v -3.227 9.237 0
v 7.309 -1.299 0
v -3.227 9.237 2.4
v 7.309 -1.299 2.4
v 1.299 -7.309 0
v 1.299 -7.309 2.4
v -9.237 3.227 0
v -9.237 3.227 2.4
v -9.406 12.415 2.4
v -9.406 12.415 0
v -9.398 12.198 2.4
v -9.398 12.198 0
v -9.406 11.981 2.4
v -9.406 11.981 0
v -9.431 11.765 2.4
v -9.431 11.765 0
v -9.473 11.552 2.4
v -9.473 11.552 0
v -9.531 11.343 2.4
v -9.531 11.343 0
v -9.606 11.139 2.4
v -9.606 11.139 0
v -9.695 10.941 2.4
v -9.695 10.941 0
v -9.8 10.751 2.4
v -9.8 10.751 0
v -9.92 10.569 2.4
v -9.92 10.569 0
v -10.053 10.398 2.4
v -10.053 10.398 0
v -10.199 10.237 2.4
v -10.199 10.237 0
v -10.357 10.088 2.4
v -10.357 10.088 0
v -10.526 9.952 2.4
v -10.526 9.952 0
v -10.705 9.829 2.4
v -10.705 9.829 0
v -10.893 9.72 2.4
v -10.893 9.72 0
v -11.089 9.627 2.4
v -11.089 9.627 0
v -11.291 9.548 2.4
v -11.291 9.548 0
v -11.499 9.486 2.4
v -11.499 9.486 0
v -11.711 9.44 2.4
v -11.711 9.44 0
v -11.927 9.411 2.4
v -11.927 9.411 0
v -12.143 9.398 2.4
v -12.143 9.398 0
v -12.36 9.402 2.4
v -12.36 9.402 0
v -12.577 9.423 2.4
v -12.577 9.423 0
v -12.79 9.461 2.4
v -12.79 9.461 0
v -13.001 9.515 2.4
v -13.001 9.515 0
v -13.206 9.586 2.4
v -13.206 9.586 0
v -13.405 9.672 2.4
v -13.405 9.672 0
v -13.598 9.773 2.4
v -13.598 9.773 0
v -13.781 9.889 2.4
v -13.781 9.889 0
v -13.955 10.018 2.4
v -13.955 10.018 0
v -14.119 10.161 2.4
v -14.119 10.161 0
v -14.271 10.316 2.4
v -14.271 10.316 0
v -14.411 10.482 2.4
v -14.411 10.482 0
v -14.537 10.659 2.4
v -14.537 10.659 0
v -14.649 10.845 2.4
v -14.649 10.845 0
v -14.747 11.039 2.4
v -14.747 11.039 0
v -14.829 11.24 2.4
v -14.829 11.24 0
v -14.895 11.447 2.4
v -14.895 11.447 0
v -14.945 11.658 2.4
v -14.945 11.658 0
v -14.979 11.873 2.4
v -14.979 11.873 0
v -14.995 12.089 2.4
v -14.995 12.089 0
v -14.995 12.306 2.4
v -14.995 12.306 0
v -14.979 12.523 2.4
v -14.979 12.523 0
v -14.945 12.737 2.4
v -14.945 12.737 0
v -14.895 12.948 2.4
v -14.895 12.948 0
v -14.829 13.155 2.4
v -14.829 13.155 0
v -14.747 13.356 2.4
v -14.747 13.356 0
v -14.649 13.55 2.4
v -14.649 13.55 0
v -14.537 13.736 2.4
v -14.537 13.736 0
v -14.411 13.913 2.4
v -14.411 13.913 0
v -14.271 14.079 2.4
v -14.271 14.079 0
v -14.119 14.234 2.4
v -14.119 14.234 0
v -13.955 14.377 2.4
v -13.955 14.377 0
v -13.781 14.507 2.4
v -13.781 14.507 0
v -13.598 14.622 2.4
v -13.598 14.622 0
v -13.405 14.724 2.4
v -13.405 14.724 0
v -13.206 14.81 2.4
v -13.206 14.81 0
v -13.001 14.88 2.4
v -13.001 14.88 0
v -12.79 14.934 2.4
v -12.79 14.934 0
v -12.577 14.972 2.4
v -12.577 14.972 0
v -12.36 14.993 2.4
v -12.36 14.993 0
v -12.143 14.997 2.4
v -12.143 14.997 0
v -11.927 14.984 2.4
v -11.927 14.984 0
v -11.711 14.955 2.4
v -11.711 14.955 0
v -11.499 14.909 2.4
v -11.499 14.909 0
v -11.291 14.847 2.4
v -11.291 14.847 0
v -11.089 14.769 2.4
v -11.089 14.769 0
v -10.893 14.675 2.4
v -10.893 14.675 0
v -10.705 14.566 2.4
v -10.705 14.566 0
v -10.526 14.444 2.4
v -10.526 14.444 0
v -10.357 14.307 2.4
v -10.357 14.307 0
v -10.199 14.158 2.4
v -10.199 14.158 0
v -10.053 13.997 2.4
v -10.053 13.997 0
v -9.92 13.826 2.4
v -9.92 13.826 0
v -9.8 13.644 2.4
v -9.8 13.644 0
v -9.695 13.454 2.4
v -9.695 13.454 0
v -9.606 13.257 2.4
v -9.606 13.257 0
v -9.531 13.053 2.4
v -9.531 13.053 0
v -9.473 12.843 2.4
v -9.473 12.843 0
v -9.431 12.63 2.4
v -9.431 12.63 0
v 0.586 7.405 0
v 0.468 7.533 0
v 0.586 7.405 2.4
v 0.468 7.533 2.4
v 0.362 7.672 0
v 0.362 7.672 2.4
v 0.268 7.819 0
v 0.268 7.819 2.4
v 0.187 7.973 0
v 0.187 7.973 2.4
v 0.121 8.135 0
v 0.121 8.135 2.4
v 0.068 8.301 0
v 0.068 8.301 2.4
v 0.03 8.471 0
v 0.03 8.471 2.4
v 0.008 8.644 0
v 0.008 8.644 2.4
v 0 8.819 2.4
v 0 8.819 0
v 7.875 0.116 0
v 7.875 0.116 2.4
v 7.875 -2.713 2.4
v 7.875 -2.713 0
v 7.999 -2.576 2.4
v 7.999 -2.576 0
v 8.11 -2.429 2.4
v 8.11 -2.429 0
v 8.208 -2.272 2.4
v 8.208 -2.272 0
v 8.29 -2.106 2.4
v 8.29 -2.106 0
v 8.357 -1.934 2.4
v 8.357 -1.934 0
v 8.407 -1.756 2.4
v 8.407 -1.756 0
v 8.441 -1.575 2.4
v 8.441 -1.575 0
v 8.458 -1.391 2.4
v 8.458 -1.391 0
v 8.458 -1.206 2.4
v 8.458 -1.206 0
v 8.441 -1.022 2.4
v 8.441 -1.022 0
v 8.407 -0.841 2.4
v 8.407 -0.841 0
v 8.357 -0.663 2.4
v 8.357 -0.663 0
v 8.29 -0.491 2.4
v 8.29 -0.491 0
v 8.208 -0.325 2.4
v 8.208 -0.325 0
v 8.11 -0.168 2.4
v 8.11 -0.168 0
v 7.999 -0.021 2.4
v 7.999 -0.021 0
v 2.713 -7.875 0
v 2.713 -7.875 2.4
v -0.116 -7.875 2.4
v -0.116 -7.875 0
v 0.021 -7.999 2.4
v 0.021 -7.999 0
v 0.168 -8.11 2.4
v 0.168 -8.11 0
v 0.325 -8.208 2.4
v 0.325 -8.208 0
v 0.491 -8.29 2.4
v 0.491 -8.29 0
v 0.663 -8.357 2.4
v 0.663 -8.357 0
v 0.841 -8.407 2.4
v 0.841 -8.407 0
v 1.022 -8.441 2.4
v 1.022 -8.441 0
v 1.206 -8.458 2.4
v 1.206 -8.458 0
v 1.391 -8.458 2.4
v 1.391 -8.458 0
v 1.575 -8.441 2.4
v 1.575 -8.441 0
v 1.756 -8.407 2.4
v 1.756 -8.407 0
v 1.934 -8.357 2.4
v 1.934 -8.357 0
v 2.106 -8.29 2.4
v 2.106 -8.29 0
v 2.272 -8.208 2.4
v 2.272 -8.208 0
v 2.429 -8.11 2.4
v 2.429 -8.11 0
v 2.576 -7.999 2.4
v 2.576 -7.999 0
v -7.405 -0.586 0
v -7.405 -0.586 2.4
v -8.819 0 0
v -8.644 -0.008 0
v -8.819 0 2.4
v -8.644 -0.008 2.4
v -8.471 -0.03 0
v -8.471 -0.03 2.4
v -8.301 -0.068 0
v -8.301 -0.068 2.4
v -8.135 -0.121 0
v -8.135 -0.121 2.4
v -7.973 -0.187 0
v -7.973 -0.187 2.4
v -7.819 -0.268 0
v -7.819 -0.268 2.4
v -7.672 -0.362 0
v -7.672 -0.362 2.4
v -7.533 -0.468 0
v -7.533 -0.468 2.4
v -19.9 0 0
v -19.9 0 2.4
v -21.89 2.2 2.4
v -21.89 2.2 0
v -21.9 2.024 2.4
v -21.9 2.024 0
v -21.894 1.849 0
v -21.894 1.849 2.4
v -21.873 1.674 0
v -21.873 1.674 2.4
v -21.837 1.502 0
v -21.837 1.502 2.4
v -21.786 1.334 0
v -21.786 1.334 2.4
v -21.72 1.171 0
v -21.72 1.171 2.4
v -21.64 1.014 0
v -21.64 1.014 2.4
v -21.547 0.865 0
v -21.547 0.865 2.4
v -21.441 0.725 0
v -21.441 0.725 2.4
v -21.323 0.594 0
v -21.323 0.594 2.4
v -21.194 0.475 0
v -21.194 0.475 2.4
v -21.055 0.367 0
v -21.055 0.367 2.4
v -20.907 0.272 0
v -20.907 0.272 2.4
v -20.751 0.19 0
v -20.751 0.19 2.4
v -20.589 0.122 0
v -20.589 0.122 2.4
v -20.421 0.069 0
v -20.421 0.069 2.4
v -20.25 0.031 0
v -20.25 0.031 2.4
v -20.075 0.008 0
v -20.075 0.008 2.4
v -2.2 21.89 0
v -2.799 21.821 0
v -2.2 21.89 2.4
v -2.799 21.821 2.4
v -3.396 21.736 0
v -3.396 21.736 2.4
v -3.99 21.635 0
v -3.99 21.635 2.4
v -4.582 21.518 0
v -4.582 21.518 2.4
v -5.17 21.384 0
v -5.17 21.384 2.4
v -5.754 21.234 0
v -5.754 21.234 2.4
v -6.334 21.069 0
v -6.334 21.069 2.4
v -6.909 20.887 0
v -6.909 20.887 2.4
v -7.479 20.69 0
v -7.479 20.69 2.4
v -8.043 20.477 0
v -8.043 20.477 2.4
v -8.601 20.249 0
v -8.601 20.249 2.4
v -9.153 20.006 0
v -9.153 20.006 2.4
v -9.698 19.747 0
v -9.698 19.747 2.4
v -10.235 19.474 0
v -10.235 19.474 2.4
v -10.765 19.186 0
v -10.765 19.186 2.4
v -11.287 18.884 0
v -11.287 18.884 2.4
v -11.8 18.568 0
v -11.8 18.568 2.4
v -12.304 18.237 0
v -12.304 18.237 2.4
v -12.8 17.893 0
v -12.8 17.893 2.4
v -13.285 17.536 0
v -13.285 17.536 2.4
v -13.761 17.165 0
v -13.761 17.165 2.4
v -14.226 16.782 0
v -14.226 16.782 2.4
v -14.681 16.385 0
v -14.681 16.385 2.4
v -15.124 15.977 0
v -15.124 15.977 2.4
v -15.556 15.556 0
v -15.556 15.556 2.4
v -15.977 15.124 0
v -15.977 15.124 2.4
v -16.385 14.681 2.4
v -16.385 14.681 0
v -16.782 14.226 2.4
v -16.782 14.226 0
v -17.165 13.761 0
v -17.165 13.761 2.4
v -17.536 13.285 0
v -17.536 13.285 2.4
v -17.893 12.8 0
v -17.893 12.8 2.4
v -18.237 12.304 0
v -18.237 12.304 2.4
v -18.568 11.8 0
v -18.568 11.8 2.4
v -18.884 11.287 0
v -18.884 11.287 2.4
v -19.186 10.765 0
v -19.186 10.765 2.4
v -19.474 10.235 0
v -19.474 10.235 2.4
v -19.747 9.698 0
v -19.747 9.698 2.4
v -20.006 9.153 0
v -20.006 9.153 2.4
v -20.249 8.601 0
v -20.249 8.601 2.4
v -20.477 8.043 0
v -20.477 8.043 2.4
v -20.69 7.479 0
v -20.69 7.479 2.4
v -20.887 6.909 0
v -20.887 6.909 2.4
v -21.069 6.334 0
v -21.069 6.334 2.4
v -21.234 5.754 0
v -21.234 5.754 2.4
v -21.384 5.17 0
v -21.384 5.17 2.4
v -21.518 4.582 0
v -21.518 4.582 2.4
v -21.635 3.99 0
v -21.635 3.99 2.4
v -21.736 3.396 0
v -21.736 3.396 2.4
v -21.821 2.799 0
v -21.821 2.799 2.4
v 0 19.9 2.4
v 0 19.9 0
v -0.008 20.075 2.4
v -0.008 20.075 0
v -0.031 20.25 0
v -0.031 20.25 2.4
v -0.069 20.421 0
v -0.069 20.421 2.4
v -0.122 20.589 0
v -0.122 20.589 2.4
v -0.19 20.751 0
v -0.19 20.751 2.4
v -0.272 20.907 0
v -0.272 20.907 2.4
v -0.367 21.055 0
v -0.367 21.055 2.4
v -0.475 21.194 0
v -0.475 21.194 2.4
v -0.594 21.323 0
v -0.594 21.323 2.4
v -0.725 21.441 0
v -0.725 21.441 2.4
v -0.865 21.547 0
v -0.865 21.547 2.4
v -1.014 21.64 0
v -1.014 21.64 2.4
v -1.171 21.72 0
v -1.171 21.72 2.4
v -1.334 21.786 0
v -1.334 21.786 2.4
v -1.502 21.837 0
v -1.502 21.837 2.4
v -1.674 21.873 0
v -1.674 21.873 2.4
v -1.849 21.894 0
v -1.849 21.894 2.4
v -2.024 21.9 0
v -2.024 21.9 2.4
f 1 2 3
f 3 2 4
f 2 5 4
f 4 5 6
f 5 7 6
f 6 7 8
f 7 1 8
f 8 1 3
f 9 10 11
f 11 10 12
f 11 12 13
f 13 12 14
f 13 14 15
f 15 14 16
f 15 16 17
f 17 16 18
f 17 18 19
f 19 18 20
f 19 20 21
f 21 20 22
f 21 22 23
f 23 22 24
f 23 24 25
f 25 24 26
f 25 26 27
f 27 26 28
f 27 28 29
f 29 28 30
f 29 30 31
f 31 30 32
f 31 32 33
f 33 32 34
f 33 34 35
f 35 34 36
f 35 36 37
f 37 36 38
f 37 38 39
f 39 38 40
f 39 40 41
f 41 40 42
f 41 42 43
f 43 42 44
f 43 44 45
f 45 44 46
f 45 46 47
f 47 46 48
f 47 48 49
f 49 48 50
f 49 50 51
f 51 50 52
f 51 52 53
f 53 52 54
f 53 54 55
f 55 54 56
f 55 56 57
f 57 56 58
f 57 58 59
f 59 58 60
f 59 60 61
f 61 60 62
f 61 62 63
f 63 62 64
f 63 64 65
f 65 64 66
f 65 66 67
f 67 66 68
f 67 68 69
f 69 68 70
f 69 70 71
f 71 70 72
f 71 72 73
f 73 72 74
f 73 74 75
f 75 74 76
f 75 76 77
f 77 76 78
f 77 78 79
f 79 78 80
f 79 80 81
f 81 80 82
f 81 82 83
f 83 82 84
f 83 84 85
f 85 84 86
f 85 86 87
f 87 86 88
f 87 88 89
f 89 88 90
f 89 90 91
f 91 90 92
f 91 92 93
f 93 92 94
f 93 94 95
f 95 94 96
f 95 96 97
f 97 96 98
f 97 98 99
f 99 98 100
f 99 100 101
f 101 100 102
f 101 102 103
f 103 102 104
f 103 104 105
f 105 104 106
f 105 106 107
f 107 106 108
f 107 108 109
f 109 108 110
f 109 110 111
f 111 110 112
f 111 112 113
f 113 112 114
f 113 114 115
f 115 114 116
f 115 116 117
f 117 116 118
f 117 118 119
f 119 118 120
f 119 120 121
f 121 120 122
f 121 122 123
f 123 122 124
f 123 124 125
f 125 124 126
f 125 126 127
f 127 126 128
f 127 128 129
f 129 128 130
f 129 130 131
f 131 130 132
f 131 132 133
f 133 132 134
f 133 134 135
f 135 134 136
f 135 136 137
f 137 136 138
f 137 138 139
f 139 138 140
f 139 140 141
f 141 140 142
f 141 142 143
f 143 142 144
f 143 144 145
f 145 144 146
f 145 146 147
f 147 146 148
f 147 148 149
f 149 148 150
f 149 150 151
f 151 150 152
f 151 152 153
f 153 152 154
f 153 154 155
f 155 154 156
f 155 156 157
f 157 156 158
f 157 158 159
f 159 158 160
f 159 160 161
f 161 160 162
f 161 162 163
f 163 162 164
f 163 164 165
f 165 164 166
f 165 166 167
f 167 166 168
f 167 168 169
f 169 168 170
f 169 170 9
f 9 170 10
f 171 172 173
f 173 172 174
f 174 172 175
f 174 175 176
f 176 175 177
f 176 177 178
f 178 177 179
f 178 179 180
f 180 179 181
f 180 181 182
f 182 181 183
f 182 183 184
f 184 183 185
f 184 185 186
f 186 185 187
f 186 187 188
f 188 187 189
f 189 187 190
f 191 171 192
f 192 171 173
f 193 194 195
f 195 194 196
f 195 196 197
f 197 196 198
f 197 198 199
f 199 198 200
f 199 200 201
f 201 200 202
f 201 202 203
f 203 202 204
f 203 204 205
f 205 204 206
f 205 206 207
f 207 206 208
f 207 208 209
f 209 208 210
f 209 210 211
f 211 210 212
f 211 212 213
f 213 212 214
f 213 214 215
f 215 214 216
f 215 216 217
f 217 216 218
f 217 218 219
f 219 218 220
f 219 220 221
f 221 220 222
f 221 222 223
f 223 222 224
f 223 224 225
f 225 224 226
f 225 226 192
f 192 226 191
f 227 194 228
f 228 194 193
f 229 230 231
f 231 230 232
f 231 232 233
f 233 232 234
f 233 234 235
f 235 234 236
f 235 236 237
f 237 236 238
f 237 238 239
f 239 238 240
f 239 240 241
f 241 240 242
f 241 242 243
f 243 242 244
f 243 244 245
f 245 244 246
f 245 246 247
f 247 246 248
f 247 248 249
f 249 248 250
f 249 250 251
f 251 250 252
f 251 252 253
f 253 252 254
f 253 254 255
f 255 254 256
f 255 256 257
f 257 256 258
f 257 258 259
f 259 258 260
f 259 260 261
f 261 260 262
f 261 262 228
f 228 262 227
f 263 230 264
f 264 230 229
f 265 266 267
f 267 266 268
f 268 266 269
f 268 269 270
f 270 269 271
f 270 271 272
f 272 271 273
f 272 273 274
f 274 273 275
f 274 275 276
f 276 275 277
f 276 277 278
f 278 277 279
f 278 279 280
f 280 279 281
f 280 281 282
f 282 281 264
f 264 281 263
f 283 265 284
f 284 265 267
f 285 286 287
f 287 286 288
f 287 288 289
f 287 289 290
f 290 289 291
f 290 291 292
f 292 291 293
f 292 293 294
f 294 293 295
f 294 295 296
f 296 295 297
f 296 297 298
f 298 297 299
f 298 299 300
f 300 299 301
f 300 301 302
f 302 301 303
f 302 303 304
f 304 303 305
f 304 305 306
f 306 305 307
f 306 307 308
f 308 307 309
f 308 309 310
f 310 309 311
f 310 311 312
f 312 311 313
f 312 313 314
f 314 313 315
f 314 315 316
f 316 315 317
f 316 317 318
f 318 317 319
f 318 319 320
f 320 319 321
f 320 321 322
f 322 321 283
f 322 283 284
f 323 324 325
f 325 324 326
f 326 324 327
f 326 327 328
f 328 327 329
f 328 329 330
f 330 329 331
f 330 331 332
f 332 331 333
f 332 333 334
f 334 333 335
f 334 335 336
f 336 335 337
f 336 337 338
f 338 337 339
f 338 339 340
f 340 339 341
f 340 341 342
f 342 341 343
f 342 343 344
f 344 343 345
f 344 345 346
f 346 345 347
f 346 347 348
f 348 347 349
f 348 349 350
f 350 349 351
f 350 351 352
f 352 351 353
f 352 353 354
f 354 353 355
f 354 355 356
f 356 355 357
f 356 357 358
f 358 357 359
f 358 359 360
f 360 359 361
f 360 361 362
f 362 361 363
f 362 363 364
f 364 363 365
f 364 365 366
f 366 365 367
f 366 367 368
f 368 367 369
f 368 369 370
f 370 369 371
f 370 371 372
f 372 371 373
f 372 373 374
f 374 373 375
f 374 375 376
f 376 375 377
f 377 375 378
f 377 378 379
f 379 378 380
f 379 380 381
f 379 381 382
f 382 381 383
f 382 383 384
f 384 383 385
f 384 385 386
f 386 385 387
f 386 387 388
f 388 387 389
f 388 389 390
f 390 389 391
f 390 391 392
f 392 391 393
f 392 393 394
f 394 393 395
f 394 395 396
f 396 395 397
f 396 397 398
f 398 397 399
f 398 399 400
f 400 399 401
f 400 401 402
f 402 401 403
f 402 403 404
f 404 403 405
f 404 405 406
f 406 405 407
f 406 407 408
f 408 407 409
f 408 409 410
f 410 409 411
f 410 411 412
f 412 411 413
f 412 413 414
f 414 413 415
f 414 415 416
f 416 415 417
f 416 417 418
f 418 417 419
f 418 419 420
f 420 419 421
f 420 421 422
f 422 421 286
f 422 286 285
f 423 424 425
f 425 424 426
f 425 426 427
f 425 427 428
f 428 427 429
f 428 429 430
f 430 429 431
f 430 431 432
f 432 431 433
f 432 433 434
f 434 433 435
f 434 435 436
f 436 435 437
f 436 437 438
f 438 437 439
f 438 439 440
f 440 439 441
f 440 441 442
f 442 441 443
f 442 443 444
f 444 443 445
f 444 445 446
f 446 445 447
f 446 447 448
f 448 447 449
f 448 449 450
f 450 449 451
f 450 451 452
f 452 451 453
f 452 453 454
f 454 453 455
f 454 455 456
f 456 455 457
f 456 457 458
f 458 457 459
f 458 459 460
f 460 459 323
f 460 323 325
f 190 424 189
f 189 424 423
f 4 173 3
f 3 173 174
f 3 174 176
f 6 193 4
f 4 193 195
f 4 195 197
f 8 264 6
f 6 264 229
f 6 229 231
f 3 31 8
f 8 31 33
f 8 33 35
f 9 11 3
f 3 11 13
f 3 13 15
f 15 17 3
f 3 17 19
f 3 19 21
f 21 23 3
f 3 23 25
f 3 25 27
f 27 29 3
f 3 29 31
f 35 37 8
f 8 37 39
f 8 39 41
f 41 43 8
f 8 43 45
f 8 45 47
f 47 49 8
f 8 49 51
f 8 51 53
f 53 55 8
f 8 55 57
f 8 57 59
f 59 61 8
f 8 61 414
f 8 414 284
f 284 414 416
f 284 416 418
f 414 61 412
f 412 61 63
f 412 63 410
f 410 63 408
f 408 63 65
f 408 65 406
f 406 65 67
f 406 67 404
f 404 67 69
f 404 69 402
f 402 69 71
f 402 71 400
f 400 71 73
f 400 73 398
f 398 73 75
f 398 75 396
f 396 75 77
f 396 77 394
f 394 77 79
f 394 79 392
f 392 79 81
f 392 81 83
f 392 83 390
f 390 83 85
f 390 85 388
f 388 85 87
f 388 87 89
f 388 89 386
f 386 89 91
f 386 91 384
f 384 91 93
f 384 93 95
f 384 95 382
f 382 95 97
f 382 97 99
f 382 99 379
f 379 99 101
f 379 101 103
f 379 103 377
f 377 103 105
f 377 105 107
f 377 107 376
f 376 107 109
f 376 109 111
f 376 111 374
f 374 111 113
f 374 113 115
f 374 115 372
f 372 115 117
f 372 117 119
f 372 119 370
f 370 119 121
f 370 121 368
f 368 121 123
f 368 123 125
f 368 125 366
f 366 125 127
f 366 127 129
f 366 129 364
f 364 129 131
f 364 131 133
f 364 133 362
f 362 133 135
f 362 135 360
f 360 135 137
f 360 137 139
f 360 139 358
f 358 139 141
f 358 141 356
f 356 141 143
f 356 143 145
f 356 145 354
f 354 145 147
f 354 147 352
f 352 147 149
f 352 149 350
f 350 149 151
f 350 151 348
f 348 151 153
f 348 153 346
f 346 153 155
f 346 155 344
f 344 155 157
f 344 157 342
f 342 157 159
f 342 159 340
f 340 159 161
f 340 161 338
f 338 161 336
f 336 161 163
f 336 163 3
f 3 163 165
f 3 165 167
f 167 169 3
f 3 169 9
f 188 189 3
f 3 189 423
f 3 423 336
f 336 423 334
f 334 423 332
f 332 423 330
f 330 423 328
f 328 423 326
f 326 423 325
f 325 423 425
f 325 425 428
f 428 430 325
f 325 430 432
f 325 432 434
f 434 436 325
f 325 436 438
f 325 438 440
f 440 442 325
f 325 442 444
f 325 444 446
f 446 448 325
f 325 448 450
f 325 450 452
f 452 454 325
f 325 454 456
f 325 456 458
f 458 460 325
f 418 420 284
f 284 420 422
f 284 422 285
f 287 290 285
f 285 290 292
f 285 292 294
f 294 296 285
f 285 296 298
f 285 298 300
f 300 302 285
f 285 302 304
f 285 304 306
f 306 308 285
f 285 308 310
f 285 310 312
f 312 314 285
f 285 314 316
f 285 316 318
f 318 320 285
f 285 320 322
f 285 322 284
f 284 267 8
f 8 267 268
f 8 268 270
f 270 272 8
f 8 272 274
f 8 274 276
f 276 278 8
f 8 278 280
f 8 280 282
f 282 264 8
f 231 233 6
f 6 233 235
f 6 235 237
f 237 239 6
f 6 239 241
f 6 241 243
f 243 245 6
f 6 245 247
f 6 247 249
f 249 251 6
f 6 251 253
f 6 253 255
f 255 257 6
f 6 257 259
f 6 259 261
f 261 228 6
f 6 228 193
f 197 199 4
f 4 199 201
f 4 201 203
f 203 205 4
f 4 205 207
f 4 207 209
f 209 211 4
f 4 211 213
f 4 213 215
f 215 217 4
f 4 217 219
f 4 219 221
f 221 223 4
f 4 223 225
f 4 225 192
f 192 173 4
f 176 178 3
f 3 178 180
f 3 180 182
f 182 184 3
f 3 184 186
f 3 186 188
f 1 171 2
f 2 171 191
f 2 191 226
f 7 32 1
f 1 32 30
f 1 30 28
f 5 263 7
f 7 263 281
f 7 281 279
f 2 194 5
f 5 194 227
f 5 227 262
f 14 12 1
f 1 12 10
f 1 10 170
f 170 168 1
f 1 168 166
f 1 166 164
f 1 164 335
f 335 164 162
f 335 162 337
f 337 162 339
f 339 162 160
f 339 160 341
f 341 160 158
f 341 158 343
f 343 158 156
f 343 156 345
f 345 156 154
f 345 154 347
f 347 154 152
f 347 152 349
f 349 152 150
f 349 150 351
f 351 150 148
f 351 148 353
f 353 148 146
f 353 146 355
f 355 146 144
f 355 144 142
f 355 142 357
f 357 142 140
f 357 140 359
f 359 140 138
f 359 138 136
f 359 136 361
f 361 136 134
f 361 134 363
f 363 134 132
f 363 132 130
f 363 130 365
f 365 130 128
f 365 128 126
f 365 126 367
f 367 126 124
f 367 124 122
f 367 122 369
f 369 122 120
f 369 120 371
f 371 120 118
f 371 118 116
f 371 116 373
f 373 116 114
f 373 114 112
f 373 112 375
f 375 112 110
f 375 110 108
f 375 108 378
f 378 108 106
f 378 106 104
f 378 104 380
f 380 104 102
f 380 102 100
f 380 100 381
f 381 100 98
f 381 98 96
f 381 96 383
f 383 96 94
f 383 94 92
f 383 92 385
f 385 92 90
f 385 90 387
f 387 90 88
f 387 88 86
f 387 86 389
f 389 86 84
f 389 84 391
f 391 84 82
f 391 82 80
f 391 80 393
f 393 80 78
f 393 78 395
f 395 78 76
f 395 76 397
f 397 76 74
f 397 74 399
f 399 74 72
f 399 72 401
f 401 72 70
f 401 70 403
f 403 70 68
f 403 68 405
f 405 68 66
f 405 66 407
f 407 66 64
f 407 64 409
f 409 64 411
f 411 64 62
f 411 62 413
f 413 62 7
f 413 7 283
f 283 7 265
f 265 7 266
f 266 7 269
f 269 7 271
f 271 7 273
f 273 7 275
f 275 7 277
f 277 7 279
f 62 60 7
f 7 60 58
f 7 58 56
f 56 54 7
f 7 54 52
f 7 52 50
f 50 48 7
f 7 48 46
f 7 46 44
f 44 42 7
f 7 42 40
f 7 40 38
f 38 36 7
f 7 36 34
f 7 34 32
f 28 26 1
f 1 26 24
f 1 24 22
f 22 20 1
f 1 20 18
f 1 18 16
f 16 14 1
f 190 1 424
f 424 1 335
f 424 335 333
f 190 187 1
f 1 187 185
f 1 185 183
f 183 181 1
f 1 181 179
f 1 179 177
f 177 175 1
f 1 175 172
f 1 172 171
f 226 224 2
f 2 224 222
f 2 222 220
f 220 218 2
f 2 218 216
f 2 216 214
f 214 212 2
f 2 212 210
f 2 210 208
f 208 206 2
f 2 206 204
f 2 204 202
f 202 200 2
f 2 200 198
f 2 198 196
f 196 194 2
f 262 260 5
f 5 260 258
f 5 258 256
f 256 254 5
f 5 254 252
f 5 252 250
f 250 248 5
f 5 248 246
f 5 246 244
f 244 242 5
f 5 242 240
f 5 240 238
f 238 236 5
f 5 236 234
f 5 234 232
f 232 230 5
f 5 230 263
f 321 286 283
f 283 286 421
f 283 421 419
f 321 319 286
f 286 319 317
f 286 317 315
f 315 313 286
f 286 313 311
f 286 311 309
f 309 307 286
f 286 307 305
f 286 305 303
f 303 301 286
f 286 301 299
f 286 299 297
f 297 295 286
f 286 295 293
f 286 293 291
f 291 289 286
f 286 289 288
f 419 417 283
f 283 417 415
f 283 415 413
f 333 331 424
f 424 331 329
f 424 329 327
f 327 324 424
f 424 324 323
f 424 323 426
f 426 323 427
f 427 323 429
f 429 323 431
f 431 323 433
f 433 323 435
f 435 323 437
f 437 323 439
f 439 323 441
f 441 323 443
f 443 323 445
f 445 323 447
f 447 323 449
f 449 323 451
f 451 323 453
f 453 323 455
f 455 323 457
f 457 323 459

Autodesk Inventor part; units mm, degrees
ref_plane "YZ Plane" through (0, 0, 0) normal (1, 0, 0) x (0, 1, 0)
ref_plane "XZ Plane" through (0, 0, 0) normal (0, 1, 0) x (-1, 0, 0)
ref_plane "XY Plane" through (0, 0, 0) normal (0, 0, 1) x (1, 0, 0)
sketch "Sketch1" plane through (0, 0, 0) normal (0, 0, 1) x (1, 0, 0)
  arc A0 (-2.2, 21.8897) -> (-21.8897, 2.2) centre (0, 0) ccw
  line L0 (-11.05, 0) -> (-19.8997, 0)
  line L1 (0, 11.05) -> (0, 19.8997)
  line L2 (0, 0) -> (22, 0) construction
  circle A1 centre (-12.1976, 12.1976) radius 2.8
  line L3 (0.5858, 7.4045) -> (6.9261, 1.0642)
  arc A2 (-21.8897, 2.2) -> (-19.8997, 0) centre (-19.8997, 2) ccw
  arc A3 (0, 19.8997) -> (-2.2, 21.8897) centre (-2, 19.8997) ccw
  line L4 (-8.5302, 2.5198) -> (-9.2373, 3.2269)
  line L5 (-3.2269, 9.2373) -> (-2.5198, 8.5302)
  line L6 (-0.1156, -5.8948) -> (-8.5302, 2.5198)
  line L7 (-2.5198, 8.5302) -> (5.8948, 0.1156)
  line L8 (-11.05, 0) -> (-8.8187, 0)
  line L9 (-7.4045, -0.5858) -> (-1.0642, -6.9261)
  line L10 (0, 11.05) -> (0, 8.8187)
  arc A4 (-7.4045, -0.5858) -> (-8.8187, 0) centre (-8.8187, -2) ccw
  arc A5 (0, 8.8187) -> (0.5858, 7.4045) centre (2, 8.8187) ccw
  arc A6 (0, 11.05) -> (-1.5191, 10.9451) centre (0, 0) ccw
  line L11 (5.8948, 0.1156) -> (7.309, -1.2986)
  line L12 (-0.1156, -5.8948) -> (1.2986, -7.309)
  line L13 (-0.1156, -5.8948) -> (1.8844, -5.8948) construction
  line L14 (1.2986, -7.309) -> (7.309, -1.2986)
  line L15 (-9.2373, 3.2269) -> (-3.2269, 9.2373)
  line L16 (-1.0642, -6.9261) -> (-0.1156, -7.8747)
  line L17 (2.7128, -7.8747) -> (7.8747, -2.7128)
  line L18 (7.8747, 0.1156) -> (6.9261, 1.0642)
  arc A7 (-10.2177, 4.2073) -> (-10.7101, 2.7198) centre (0, 0) ccw
  arc A8 (-10.9451, 1.5191) -> (-11.05, 0) centre (0, 0) ccw
  arc A9 (7.8747, -2.7128) -> (7.8747, 0.1156) centre (6.4605, -1.2986) ccw
  arc A10 (-0.1156, -7.8747) -> (2.7128, -7.8747) centre (1.2986, -6.4605) ccw
  point P0 (-22, 0)
  point P1 (0, 22)
  point P2 (0, 7.9903)
  point P3 (-4.2073, 10.2177)
  dimension "d1" = 44
  dimension "d3" = 5.6
  dimension "d4" = 17.25
  dimension "d6" = 15.6271
  dimension "d16" = 1
  dimension "d18" = 2
  dimension "d19" = 1
  dimension "d20" = 2
  dimension "d21" = 2
  dimension "d22" = 45
  dimension "d23" = 14.9
  dimension "d24" = 2
extrude "Extrusion1" add sketch "Sketch1" along normal blind 2.4
properties part number "ir-holder"
